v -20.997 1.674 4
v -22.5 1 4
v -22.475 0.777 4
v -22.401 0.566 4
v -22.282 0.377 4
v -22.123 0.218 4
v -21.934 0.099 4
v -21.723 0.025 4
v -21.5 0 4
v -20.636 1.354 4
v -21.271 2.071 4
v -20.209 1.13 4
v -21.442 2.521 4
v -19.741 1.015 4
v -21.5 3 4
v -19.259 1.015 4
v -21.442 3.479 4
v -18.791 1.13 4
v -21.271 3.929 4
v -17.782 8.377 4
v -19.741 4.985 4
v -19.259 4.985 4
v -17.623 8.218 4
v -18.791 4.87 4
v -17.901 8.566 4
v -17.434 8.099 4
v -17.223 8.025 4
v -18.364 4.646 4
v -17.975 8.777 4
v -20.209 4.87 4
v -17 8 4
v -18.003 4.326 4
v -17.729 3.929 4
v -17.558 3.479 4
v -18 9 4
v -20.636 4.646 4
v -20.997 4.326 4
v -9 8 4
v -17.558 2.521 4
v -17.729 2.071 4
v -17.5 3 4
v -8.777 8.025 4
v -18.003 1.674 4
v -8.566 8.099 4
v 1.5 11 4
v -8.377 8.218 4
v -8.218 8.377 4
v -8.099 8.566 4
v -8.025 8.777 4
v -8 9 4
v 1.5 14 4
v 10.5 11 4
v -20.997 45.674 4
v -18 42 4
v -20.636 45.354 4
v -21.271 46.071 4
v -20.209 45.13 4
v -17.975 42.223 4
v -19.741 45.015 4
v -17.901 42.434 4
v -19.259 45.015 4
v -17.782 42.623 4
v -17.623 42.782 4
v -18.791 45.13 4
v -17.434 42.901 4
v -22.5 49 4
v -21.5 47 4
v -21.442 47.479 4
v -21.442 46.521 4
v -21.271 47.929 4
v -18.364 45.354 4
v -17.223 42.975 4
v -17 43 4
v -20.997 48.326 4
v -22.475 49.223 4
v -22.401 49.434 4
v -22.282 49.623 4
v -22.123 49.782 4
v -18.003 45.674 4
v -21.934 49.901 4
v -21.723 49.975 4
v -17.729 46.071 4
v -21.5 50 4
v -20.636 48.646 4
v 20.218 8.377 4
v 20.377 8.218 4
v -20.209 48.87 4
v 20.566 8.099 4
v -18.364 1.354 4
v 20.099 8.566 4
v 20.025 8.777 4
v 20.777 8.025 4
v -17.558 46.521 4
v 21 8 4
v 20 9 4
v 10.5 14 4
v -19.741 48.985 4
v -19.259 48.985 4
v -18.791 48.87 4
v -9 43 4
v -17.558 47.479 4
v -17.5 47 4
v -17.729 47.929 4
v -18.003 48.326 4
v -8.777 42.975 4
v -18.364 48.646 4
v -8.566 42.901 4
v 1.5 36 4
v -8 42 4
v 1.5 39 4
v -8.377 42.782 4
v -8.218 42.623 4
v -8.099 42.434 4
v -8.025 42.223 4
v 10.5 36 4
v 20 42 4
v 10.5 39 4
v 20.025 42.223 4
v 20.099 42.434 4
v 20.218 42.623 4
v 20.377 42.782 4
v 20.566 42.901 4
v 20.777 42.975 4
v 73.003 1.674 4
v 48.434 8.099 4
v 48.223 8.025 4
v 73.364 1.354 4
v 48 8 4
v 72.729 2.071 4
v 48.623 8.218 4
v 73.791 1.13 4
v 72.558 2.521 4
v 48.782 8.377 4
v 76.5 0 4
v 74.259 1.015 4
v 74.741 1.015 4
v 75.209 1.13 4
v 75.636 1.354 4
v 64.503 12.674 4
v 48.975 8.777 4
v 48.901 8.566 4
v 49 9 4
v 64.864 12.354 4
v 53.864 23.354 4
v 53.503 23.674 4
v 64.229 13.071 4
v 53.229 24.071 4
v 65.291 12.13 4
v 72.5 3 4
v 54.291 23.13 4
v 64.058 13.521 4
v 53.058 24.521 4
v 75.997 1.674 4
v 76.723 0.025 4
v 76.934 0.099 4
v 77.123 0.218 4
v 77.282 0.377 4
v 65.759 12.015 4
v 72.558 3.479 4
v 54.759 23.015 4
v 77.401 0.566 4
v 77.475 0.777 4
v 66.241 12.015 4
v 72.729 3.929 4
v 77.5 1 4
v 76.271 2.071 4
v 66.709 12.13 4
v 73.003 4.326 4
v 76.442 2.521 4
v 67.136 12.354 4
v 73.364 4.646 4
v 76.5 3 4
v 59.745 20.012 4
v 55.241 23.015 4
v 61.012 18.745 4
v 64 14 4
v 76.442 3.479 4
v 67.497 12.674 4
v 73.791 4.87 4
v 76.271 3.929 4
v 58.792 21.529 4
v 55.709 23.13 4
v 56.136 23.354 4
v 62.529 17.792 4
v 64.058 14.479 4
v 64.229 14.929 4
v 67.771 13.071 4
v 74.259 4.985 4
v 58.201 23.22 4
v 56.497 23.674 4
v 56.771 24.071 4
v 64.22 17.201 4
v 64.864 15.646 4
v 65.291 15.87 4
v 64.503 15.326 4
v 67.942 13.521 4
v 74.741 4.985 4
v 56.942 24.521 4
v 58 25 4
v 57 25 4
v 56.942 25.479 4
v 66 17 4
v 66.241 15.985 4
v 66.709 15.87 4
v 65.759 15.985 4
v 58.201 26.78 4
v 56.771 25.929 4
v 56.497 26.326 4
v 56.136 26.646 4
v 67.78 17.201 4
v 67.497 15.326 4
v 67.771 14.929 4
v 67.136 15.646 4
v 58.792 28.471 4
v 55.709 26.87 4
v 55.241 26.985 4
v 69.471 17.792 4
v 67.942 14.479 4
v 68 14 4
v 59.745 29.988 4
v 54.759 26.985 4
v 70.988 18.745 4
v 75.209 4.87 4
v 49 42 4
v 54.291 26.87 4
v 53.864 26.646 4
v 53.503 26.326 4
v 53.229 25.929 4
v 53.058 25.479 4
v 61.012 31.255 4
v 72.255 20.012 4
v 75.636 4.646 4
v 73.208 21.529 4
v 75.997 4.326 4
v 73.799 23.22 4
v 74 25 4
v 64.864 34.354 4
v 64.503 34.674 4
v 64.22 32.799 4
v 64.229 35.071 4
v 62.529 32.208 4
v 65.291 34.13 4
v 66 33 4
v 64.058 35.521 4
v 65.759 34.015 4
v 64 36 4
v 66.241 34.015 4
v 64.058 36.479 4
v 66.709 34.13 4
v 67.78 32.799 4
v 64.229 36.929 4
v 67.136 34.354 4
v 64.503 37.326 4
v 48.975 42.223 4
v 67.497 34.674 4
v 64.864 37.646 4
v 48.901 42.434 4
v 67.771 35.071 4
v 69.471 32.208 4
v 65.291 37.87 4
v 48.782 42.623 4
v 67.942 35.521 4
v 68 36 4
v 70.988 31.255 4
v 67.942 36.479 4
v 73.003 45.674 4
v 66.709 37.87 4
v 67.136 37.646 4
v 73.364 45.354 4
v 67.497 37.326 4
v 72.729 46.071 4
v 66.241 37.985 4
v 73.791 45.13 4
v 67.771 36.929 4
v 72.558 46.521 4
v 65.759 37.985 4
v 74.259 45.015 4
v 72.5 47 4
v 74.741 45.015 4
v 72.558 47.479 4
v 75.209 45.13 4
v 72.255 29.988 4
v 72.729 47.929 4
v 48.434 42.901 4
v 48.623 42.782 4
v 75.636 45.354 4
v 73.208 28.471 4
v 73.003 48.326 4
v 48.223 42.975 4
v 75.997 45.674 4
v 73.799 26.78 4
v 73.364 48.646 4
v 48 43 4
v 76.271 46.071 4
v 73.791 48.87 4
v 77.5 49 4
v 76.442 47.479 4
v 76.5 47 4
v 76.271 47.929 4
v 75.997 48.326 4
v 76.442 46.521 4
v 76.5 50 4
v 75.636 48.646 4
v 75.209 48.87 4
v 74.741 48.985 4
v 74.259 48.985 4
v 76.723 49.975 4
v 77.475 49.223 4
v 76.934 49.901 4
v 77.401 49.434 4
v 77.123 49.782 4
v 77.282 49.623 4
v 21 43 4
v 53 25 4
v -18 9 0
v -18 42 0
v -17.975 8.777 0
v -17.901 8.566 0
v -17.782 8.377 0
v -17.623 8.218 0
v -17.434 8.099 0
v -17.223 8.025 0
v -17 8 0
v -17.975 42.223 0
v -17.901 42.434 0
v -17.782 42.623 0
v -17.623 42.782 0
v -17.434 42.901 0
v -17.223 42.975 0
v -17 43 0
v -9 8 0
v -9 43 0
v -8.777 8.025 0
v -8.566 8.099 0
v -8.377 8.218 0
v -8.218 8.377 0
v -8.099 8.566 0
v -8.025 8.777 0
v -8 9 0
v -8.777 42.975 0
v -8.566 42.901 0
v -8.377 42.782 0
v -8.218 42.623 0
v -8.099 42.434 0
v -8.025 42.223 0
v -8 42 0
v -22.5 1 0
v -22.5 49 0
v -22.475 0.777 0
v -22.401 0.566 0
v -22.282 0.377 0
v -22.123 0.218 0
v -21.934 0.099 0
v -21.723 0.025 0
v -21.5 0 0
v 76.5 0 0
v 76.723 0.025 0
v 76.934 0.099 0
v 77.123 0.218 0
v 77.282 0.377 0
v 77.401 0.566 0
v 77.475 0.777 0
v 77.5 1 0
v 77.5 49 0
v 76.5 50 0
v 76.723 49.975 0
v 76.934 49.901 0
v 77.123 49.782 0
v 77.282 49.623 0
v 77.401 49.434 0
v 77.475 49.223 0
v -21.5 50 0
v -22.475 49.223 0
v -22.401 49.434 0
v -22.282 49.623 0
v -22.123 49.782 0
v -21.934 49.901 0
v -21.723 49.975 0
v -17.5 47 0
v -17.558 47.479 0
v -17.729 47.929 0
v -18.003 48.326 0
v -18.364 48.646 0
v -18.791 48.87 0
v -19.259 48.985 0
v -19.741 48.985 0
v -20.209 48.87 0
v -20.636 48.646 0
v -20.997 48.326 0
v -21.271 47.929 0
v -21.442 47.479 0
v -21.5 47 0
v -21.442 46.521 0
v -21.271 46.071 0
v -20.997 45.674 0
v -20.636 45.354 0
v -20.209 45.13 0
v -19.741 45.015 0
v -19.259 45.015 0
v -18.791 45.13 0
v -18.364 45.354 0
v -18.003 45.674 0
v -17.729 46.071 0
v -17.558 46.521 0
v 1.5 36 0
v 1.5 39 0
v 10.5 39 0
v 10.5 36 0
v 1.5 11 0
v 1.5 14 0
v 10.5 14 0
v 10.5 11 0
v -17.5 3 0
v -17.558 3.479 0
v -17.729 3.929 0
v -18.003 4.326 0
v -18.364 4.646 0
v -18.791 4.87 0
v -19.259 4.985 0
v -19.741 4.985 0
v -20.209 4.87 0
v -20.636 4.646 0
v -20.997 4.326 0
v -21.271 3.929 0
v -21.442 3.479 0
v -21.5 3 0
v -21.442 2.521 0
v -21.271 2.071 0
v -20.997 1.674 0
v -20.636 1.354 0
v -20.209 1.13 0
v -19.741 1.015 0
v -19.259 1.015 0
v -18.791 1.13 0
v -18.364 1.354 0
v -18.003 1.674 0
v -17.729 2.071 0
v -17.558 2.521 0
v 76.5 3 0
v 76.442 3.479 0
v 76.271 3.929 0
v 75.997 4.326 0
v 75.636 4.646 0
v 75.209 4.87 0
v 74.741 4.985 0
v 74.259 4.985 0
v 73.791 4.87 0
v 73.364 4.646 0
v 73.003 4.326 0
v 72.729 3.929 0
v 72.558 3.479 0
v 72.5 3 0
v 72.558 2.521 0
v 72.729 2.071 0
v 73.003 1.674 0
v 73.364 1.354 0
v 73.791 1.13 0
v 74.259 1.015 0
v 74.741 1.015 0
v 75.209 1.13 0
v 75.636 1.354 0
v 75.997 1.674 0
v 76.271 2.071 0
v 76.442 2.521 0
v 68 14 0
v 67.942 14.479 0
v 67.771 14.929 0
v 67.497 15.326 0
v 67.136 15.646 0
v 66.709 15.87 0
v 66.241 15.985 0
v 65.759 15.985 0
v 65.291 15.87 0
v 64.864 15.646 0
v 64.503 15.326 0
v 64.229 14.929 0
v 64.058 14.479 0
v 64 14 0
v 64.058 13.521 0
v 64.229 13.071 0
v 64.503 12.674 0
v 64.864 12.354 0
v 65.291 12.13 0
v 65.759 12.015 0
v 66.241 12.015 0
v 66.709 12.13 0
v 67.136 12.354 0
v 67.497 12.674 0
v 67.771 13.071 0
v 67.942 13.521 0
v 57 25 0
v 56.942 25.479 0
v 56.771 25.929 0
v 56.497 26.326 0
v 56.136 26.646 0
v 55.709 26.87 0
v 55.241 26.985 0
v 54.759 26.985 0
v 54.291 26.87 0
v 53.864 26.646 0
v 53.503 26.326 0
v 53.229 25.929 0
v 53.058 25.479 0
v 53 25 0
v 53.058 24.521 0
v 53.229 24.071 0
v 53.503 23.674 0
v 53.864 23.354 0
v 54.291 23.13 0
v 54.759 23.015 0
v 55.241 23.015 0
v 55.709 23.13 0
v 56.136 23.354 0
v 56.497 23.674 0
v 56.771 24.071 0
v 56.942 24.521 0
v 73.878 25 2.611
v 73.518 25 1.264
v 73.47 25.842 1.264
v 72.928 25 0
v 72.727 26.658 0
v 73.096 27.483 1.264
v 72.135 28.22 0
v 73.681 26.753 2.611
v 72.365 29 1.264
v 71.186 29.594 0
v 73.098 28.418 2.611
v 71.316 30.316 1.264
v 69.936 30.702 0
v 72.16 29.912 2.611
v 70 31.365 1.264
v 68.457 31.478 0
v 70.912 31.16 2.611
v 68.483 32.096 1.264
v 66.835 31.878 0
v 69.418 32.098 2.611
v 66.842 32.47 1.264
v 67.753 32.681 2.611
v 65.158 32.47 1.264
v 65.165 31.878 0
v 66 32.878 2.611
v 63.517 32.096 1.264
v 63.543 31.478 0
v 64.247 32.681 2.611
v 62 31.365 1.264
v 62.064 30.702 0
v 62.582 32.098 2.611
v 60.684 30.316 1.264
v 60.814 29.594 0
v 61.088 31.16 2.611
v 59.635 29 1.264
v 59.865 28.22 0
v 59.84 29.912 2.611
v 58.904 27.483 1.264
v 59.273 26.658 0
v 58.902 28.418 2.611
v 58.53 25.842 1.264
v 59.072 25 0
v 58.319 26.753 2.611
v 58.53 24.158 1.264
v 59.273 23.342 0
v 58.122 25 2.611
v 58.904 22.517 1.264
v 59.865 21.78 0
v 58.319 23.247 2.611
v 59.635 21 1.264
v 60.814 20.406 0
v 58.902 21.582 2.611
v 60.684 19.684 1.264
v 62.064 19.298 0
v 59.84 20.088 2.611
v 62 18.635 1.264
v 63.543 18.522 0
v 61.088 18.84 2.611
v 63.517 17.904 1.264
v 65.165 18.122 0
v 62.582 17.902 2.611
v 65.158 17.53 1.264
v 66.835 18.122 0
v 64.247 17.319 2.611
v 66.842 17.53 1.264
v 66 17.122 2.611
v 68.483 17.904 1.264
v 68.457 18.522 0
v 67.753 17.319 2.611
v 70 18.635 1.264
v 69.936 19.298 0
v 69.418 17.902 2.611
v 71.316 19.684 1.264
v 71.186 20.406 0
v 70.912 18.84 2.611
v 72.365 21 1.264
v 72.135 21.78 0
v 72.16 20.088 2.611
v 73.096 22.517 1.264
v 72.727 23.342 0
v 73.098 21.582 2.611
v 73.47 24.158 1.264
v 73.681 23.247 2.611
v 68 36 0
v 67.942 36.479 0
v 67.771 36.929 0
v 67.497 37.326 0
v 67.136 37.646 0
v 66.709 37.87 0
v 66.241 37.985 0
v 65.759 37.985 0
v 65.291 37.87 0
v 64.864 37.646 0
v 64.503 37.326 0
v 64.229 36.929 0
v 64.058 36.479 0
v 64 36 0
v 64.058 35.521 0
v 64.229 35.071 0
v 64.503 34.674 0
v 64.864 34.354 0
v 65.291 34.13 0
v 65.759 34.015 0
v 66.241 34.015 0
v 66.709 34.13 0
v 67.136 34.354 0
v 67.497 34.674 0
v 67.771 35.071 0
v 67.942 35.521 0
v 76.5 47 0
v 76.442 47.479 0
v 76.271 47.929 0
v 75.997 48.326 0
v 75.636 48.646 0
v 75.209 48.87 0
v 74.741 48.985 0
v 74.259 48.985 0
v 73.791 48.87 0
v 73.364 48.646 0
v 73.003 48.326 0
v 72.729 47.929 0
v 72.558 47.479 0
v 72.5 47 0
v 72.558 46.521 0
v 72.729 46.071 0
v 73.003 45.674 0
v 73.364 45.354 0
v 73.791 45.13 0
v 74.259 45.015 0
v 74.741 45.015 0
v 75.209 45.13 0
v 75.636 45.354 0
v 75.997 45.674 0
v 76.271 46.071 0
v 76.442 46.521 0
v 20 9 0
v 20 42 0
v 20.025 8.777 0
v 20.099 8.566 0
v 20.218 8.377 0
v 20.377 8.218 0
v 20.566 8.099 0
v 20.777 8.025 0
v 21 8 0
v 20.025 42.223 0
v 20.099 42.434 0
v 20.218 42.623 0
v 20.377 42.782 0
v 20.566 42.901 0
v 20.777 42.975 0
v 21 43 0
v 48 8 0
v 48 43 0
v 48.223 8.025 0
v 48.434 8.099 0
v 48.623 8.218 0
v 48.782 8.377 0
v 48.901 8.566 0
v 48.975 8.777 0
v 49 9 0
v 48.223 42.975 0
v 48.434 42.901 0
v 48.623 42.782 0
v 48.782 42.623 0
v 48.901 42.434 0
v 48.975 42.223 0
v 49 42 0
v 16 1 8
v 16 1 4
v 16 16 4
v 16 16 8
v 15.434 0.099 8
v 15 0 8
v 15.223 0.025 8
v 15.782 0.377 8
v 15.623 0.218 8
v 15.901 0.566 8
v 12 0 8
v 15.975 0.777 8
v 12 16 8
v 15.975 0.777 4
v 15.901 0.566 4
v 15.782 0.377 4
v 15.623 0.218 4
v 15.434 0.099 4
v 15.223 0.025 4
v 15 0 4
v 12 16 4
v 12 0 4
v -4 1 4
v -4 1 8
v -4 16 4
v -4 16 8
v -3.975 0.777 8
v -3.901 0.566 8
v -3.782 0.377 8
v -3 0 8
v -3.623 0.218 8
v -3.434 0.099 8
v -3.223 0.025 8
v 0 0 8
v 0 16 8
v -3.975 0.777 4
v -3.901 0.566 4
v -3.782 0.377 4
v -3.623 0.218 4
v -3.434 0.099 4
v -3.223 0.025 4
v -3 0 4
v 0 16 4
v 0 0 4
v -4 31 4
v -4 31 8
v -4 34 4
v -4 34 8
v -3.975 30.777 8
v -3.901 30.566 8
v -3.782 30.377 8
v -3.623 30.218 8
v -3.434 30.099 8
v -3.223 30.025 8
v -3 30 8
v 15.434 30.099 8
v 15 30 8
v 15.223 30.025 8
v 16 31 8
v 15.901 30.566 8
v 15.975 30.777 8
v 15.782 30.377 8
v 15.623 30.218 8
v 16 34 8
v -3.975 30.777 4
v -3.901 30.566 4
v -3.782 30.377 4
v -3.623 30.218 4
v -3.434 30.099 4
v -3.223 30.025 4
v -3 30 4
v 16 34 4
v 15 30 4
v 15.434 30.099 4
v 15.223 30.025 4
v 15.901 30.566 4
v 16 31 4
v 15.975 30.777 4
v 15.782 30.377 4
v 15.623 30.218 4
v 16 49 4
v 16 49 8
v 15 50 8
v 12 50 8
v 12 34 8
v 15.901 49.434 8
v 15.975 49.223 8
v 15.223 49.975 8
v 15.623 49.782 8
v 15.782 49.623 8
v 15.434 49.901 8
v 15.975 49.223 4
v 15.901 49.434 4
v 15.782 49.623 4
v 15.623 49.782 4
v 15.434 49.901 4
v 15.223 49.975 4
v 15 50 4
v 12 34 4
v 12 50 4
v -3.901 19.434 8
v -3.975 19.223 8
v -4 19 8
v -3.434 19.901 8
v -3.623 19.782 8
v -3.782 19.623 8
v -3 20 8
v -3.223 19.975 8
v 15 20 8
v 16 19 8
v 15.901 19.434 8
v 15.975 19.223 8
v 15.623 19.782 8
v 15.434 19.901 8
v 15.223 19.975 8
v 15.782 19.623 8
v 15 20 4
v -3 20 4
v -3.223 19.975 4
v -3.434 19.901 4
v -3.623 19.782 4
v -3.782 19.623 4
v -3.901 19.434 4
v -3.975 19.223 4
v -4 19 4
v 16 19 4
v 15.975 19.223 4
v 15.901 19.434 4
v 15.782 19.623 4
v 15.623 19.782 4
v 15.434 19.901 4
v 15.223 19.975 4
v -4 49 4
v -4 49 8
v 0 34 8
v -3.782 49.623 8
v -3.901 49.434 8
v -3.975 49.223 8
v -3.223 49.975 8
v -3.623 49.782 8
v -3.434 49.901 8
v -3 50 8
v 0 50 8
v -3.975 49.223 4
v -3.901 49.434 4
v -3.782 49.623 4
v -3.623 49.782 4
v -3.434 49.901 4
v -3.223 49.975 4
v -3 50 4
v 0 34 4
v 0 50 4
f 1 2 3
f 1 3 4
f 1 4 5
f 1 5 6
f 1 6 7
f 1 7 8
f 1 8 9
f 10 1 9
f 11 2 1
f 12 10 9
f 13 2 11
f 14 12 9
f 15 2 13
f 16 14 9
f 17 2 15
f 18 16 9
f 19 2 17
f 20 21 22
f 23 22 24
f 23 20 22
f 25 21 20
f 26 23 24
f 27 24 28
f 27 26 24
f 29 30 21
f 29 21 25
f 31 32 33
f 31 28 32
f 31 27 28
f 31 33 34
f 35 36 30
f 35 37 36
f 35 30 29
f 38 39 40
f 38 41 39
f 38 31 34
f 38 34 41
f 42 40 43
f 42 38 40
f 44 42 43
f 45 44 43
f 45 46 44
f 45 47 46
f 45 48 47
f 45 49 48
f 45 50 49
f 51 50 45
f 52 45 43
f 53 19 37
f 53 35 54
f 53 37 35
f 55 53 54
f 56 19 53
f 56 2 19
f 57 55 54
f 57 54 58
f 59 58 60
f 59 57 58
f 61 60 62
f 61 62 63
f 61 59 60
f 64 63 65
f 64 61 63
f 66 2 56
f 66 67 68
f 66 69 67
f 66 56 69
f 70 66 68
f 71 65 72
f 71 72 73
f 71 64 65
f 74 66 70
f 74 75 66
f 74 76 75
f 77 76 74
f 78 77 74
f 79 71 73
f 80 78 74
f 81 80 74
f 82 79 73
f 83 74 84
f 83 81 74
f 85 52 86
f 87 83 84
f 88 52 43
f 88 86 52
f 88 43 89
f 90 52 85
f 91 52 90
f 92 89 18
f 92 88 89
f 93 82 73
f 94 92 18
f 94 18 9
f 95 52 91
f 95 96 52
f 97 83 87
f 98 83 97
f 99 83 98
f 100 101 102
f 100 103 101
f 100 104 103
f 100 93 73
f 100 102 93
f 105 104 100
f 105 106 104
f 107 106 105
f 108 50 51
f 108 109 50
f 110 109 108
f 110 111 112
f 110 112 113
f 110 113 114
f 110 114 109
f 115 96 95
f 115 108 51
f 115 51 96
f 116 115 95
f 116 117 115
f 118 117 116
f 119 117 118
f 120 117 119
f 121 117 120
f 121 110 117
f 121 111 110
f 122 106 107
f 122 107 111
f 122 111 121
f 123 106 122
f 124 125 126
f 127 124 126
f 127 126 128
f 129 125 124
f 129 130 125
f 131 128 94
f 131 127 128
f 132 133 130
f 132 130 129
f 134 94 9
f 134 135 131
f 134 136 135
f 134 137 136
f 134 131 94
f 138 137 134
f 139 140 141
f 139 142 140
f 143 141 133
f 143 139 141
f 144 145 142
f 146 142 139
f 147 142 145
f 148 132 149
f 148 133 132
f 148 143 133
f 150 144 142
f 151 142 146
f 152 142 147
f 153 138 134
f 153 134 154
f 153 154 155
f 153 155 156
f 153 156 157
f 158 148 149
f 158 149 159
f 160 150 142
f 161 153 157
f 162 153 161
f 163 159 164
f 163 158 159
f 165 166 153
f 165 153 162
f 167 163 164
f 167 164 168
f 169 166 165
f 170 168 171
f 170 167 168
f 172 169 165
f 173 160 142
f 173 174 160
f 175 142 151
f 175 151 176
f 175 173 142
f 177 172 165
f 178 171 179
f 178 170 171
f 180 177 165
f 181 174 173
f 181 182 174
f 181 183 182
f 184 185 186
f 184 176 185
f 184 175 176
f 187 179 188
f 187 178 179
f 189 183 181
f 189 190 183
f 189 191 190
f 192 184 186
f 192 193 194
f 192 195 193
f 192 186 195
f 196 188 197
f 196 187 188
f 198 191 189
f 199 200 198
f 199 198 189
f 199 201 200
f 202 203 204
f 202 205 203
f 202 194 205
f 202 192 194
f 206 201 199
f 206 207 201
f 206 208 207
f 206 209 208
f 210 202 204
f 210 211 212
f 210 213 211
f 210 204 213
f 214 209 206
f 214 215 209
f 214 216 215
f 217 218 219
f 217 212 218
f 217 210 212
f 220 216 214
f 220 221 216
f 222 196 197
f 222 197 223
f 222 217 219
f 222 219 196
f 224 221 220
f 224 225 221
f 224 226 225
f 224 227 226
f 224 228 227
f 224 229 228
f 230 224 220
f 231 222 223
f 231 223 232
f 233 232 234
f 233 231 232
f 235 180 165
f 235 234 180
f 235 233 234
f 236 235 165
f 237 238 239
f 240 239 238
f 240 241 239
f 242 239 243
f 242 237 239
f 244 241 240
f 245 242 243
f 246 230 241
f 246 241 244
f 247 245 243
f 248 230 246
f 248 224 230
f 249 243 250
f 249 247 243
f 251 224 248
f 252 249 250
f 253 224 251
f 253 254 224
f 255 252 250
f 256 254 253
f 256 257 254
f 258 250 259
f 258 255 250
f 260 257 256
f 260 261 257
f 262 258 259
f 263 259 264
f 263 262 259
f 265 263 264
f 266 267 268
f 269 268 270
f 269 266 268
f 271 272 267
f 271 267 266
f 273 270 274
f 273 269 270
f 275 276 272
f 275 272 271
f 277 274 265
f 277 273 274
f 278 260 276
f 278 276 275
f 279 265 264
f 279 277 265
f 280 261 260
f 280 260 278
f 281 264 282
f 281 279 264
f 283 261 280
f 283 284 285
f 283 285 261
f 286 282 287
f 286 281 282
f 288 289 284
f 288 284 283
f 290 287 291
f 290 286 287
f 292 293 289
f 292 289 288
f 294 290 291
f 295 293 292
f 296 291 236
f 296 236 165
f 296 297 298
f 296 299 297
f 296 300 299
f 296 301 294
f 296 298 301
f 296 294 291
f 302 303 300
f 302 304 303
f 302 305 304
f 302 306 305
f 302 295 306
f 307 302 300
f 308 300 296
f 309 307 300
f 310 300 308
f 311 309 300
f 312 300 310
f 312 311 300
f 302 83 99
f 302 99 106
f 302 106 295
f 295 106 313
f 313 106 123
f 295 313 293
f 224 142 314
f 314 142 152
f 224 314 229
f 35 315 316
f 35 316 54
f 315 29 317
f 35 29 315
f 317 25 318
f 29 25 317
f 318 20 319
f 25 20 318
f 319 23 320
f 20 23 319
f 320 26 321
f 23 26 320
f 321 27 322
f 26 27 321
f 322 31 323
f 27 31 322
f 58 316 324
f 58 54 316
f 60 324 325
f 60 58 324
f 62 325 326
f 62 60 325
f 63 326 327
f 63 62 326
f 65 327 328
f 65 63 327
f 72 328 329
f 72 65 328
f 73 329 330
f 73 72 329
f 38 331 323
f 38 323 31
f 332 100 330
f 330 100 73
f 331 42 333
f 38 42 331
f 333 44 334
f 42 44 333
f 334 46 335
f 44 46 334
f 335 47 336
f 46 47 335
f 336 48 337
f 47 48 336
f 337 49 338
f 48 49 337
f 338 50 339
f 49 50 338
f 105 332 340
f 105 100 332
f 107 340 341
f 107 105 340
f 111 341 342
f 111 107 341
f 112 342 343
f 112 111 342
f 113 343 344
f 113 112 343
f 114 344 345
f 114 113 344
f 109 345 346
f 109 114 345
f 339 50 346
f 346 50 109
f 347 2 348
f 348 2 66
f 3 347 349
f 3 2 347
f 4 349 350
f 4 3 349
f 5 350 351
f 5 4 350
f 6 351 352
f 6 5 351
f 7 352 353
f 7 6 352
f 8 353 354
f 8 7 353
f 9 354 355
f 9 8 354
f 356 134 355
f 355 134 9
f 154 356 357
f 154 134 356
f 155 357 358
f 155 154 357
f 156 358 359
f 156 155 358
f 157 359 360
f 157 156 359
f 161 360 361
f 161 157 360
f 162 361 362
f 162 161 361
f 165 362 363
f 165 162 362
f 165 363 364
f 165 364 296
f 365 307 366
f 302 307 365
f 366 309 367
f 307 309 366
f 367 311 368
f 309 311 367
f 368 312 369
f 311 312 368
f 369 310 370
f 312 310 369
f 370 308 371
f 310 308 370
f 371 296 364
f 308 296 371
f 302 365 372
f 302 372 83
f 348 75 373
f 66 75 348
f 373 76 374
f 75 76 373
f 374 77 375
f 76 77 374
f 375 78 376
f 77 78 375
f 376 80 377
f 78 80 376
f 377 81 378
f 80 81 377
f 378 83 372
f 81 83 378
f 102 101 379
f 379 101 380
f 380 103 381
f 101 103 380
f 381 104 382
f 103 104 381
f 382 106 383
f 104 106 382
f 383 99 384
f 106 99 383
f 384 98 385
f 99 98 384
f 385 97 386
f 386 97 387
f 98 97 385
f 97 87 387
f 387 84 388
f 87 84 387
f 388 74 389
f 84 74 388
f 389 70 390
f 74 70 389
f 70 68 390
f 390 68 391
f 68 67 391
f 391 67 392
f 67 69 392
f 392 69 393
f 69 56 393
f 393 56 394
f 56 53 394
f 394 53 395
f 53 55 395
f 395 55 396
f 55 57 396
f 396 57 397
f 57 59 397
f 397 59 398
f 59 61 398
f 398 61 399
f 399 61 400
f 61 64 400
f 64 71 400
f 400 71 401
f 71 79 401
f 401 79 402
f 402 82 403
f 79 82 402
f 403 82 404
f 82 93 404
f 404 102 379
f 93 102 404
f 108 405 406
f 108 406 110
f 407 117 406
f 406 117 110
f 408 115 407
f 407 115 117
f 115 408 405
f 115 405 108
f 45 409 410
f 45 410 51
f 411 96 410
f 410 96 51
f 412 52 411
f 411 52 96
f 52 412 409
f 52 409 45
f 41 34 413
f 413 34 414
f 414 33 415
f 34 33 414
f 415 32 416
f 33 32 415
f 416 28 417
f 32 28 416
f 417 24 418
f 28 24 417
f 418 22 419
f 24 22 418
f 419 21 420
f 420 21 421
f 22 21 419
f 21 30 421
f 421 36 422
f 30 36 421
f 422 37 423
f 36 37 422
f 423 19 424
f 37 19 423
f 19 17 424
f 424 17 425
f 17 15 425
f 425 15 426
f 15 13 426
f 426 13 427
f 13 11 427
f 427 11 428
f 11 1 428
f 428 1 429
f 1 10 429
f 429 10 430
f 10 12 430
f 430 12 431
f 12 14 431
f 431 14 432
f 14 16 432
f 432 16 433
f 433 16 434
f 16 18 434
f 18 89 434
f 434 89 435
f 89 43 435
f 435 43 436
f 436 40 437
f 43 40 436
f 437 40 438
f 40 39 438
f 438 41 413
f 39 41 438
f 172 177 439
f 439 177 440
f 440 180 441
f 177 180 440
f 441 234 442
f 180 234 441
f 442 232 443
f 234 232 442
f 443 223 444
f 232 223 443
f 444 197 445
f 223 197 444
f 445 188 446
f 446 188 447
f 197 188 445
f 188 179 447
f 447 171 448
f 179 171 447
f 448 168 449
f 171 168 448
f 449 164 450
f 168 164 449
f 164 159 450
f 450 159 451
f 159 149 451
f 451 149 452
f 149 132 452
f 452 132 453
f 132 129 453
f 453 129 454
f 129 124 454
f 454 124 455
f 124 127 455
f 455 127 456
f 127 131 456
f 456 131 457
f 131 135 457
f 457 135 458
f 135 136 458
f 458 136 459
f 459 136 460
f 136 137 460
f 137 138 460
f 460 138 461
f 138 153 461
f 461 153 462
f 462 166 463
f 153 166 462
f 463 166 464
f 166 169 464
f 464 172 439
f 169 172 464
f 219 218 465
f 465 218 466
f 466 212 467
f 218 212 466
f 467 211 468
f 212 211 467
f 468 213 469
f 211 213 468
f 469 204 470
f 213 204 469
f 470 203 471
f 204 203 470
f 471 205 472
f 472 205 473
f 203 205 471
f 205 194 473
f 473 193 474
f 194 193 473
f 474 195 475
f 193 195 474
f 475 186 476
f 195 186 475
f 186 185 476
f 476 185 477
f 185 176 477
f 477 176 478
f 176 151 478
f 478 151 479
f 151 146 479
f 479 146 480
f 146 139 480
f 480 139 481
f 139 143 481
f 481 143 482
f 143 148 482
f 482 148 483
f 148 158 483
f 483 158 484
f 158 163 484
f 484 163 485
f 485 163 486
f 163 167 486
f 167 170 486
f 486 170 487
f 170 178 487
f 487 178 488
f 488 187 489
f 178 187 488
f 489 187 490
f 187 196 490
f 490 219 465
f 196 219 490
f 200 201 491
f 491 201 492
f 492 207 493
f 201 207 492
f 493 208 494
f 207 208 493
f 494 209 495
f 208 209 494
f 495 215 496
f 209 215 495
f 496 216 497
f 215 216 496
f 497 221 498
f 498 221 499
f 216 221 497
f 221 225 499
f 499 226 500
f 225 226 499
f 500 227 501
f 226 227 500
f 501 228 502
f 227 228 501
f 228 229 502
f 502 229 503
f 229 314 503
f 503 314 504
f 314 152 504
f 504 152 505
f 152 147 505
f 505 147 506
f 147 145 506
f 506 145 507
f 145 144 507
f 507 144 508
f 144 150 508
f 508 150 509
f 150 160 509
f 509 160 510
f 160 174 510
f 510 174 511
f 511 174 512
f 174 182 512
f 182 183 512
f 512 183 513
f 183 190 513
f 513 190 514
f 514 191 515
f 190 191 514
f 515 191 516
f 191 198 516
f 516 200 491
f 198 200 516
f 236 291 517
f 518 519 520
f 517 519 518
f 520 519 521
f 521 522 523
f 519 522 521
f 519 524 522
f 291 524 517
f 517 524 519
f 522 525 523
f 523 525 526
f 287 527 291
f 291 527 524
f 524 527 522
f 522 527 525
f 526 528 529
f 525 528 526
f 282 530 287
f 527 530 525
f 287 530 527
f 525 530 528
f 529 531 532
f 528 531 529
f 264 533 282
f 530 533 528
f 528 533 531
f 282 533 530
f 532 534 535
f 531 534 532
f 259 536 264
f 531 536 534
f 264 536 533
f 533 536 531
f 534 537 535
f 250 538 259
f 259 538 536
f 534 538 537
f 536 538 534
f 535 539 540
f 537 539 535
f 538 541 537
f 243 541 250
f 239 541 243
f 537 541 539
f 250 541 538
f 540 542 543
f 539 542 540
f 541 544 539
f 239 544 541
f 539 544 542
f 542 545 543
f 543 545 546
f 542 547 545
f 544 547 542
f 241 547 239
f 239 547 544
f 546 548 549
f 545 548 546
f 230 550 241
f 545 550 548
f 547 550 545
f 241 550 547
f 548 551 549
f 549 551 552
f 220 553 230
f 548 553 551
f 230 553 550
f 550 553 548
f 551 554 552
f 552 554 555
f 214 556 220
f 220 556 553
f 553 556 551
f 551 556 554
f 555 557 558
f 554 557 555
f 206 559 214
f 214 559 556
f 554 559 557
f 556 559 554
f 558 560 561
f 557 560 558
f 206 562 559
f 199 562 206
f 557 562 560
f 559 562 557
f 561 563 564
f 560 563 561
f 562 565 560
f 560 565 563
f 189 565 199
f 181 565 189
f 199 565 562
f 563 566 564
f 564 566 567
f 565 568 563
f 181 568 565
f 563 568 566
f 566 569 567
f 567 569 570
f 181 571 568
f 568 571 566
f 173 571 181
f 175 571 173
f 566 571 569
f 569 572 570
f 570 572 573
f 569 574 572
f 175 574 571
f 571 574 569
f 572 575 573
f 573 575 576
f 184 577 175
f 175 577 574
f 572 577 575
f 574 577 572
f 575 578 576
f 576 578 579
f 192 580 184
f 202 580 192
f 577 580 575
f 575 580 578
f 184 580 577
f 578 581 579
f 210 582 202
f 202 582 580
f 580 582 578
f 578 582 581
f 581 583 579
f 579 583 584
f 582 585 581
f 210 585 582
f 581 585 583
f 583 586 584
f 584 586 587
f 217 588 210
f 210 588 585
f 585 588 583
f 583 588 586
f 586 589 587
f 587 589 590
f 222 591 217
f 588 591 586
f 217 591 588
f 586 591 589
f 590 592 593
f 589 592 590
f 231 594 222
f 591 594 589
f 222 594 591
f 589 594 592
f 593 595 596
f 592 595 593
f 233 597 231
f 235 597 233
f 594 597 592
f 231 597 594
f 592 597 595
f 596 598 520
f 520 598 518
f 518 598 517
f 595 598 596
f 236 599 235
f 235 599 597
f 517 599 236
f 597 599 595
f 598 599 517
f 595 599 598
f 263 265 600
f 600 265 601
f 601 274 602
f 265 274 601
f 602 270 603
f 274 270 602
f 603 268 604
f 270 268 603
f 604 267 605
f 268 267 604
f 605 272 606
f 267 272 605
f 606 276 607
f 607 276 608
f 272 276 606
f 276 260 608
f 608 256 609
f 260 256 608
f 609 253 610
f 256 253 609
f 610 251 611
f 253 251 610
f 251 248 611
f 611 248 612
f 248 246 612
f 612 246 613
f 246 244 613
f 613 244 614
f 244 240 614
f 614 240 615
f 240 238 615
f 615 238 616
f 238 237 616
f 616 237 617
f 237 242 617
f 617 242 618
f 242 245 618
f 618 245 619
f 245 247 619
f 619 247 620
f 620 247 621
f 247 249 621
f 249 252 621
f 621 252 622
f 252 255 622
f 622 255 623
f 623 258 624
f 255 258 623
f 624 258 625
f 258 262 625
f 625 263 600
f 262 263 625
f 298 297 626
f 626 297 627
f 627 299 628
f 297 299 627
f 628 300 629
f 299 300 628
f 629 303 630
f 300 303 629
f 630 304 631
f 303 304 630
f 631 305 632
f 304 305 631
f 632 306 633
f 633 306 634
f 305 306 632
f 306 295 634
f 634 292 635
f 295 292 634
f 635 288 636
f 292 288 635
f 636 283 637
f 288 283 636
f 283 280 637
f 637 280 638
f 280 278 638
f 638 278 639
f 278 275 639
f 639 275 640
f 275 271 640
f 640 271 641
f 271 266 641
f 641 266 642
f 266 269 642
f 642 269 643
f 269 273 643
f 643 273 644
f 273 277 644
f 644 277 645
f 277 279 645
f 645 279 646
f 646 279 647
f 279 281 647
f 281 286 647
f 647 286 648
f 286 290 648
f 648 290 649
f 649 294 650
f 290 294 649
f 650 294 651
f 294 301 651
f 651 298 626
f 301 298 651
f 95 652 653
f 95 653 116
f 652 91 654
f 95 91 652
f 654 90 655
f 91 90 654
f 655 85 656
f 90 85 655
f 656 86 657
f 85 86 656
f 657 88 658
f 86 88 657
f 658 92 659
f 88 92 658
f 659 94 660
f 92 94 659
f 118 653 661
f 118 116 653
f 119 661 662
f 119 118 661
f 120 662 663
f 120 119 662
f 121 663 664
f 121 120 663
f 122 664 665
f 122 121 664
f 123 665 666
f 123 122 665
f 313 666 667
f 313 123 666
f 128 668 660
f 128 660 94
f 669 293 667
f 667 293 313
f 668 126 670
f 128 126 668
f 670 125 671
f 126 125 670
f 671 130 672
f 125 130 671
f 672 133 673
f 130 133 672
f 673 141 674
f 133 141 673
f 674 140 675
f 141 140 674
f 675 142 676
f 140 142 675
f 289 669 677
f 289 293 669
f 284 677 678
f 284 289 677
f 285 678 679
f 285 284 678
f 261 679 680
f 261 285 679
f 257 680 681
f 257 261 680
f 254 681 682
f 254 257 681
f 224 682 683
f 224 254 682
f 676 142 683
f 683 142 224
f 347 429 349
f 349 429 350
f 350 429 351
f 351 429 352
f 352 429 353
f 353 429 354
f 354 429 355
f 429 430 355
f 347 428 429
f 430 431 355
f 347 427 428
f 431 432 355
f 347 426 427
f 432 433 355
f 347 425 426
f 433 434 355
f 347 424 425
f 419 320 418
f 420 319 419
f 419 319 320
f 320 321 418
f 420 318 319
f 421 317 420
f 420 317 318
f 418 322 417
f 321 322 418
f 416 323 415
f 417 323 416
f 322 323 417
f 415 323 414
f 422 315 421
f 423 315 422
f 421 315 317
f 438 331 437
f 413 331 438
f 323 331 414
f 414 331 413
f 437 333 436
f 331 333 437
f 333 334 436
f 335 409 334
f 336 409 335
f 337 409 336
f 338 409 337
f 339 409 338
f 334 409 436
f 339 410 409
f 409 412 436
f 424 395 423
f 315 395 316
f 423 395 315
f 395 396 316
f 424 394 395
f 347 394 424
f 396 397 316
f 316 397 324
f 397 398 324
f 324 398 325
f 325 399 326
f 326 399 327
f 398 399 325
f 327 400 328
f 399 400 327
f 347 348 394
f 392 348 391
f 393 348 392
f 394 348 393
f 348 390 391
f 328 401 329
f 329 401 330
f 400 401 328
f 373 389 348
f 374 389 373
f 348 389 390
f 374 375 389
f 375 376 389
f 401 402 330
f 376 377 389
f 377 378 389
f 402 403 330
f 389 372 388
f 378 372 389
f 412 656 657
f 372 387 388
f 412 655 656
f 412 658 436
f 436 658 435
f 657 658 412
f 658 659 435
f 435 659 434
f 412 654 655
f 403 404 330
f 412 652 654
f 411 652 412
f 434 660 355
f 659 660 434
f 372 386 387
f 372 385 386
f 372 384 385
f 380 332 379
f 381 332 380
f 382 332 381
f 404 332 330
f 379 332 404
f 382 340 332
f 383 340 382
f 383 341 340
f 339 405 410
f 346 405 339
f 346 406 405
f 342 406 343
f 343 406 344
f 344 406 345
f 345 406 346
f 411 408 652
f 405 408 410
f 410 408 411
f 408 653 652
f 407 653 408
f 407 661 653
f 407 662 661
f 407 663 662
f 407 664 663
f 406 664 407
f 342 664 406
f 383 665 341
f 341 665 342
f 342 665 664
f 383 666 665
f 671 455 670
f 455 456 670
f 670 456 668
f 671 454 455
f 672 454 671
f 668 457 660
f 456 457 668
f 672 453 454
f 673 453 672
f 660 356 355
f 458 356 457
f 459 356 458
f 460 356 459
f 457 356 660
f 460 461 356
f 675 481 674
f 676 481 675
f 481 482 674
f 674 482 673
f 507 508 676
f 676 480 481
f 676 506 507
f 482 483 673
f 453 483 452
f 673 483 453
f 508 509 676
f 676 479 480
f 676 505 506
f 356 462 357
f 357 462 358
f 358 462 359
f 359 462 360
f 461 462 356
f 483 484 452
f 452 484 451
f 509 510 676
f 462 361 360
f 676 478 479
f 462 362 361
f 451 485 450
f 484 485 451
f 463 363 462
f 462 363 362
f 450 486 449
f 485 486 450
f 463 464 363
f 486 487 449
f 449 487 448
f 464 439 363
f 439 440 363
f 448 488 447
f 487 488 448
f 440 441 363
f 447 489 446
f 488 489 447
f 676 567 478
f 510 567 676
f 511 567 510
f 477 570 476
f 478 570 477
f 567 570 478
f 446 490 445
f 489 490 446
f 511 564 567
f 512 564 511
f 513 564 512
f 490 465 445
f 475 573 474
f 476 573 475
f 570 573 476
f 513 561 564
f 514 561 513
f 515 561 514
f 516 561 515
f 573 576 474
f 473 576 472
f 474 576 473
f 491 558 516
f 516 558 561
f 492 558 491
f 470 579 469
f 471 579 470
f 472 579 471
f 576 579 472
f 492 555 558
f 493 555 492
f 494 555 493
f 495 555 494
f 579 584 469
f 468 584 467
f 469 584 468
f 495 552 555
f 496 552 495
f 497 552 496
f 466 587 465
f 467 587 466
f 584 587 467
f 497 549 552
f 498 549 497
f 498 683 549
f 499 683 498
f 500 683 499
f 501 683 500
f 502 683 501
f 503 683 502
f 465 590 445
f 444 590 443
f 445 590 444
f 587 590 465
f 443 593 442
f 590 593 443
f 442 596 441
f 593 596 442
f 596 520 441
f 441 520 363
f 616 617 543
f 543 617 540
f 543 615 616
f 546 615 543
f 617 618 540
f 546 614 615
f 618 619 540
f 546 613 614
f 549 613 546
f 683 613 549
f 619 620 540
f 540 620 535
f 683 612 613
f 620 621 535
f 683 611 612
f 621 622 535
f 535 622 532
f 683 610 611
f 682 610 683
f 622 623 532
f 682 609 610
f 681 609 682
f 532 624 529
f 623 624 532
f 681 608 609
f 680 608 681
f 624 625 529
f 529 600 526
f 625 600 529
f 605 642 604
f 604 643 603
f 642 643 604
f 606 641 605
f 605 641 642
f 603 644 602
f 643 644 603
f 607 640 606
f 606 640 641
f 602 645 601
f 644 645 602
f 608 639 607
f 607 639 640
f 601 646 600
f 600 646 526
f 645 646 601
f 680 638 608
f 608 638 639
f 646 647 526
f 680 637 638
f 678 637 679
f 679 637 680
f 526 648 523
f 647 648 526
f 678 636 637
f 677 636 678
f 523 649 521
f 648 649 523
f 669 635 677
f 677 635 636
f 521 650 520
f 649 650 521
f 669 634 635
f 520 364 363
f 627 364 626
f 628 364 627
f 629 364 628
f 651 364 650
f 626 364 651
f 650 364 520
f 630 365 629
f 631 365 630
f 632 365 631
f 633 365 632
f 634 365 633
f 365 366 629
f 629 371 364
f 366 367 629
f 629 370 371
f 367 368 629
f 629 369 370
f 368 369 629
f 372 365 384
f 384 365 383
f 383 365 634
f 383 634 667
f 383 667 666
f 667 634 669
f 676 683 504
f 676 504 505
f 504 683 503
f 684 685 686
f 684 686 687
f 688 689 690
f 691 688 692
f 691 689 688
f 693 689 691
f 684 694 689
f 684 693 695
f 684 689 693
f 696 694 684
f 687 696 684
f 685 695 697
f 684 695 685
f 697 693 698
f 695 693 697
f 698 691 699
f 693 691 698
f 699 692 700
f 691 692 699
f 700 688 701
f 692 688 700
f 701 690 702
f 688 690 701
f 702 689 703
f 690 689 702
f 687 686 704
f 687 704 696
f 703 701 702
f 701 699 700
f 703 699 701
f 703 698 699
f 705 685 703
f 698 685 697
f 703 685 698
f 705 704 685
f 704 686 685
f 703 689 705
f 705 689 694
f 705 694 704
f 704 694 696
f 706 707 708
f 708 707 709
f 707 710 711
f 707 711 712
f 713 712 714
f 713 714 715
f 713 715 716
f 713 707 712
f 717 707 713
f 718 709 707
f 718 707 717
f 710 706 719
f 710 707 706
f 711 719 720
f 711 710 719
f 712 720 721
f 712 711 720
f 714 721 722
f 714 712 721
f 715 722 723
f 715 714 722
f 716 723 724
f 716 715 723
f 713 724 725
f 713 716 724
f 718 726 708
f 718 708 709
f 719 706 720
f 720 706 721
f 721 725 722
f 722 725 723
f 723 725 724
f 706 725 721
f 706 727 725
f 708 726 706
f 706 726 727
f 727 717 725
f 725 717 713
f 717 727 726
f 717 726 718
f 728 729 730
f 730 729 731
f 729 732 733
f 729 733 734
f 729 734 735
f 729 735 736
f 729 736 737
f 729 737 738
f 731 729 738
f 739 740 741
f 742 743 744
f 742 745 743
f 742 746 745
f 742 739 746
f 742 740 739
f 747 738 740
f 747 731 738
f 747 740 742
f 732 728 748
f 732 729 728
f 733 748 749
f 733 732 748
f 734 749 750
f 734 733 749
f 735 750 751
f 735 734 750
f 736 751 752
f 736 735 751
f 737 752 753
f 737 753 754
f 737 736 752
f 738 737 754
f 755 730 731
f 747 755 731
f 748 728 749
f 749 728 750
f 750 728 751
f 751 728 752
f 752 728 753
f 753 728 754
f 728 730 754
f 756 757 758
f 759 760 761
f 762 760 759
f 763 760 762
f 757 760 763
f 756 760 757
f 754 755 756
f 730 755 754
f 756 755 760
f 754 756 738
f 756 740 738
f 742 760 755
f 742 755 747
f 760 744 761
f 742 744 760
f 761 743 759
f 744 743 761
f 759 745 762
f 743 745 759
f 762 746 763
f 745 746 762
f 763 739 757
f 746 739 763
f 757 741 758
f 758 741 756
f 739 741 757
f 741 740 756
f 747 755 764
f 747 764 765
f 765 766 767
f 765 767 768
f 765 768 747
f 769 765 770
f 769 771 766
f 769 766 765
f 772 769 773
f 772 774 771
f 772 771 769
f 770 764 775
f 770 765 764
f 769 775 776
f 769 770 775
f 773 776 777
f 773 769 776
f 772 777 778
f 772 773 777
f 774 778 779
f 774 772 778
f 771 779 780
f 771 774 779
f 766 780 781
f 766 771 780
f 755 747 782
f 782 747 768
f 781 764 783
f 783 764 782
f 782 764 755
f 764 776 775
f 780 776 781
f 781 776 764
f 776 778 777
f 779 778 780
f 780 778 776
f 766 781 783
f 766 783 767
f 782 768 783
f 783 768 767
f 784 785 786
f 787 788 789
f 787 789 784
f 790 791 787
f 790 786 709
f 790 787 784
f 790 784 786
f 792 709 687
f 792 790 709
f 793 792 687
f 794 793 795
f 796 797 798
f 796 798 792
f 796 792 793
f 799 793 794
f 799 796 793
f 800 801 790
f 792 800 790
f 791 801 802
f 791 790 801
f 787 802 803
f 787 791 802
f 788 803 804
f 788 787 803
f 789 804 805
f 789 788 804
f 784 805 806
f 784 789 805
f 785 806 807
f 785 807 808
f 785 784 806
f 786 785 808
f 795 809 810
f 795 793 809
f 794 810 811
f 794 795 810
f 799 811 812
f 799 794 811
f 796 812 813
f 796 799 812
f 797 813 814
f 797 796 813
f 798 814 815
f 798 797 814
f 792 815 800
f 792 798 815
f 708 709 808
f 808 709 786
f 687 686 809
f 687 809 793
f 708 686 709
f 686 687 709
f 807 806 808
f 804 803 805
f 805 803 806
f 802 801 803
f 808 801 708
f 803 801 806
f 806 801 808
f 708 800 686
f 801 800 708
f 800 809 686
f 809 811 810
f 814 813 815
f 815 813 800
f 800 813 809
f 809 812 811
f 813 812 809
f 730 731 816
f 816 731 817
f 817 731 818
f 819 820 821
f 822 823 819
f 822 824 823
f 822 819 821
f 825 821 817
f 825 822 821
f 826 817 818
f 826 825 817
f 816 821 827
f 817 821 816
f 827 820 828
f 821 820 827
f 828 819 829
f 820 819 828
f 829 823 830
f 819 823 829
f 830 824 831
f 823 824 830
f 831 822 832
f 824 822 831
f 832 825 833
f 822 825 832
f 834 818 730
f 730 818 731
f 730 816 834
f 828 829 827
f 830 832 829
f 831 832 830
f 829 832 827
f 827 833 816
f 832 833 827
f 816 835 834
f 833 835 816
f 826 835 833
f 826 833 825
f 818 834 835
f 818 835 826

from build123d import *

# Parameters (mm, degrees)
CYLINDER006_R     = 2
CYLINDER006_DEPTH = 4
BOX010_W          = 29
BOX010_H          = 35
BOX010_DEPTH      = 4
CYLINDER004_R     = 2
CYLINDER004_DEPTH = 4
CYLINDER005_R     = 2
CYLINDER005_DEPTH = 4
BOX009_W          = 10
BOX009_H          = 35
BOX009_DEPTH      = 4
BOX008_W          = 9
BOX008_H          = 3
BOX008_DEPTH      = 4
BOX007_W          = 9
BOX007_H          = 3
BOX007_DEPTH      = 4
CYLINDER001_R     = 2
CYLINDER001_DEPTH = 4
CYLINDER002_R     = 2
CYLINDER002_DEPTH = 4
CYLINDER003_R     = 2
CYLINDER003_DEPTH = 4
CYLINDER_R        = 2
CYLINDER_DEPTH    = 4
BOX_W             = 100
BOX_H             = 50
BOX_DEPTH         = 4
FILLET_R          = 1
FILLET001_R       = 1
BOX003_W          = 4
BOX003_H          = 16
BOX003_DEPTH      = 4
FILLET002_R       = 1
BOX002_W          = 4
BOX002_H          = 16
BOX002_DEPTH      = 4
FILLET004_R       = 1
BOX006_W          = 20
BOX006_H          = 4
BOX006_DEPTH      = 4
FILLET005_R       = 1
BOX005_W          = 4
BOX005_H          = 16
BOX005_DEPTH      = 4
FILLET006_R       = 1
BOX001_W          = 20
BOX001_H          = 4
BOX001_DEPTH      = 4
FILLET003_R       = 1
FILLET007_R       = 1
BOX004_W          = 4
BOX004_H          = 16
BOX004_DEPTH      = 4
FILLET008_R       = 1


with BuildPart() as sphere:
    # Sphere → Sphere (revolve)
    with BuildSketch(Plane(origin=(66, 25, 4), x_dir=(1, 0, 0), z_dir=(0, -1, 0))):
        with BuildLine():
            ThreePointArc((0, -8), (8, 0), (0, 8))
            Line((0, 8), (0, -8))
        make_face()
    revolve(axis=Axis((66, 25, 4), (0, 0, 1)))


with BuildPart() as cylinder002:
    # Cylinder006 → Cylinder006 (new body)
    with BuildSketch(Plane(origin=(66, 36, 0), x_dir=(1, 0, 0), z_dir=(0, 0, 1))):
        Circle(CYLINDER006_R)
    extrude(amount=CYLINDER006_DEPTH)


with BuildPart() as cube010:
    # Box010 → Box010 (new body)
    with BuildSketch(Plane(origin=(20, 8, 0), x_dir=(1, 0, 0), z_dir=(0, 0, 1))):
        with Locations((14.5, 17.5)):
            Rectangle(BOX010_W, BOX010_H)
    extrude(amount=BOX010_DEPTH)


with BuildPart() as cylinder:
    # Cylinder004 → Cylinder004 (new body)
    with BuildSketch(Plane(origin=(55, 25, 0), x_dir=(1, 0, 0), z_dir=(0, 0, 1))):
        Circle(CYLINDER004_R)
    extrude(amount=CYLINDER004_DEPTH)


with BuildPart() as cylinder001:
    # Cylinder005 → Cylinder005 (new body)
    with BuildSketch(Plane(origin=(66, 14, 0), x_dir=(1, 0, 0), z_dir=(0, 0, 1))):
        Circle(CYLINDER005_R)
    extrude(amount=CYLINDER005_DEPTH)


with BuildPart() as cube009:
    # Box009 → Box009 (new body)
    with BuildSketch(Plane(origin=(-18, 8, 0), x_dir=(1, 0, 0), z_dir=(0, 0, 1))):
        with Locations((5, 17.5)):
            Rectangle(BOX009_W, BOX009_H)
    extrude(amount=BOX009_DEPTH)


with BuildPart() as cube008:
    # Box008 → Box008 (new body)
    with BuildSketch(Plane(origin=(1.5, 36, 0), x_dir=(1, 0, 0), z_dir=(0, 0, 1))):
        with Locations((4.5, 1.5)):
            Rectangle(BOX008_W, BOX008_H)
    extrude(amount=BOX008_DEPTH)


with BuildPart() as cube007:
    # Box007 → Box007 (new body)
    with BuildSketch(Plane(origin=(1.5, 11, 0), x_dir=(1, 0, 0), z_dir=(0, 0, 1))):
        with Locations((4.5, 1.5)):
            Rectangle(BOX007_W, BOX007_H)
    extrude(amount=BOX007_DEPTH)


with BuildPart() as cylinder001_body:
    # Cylinder001 → Cylinder001 (new body)
    with BuildSketch(Plane(origin=(3, 47, 0), x_dir=(1, 0, 0), z_dir=(0, 0, 1))):
        Circle(CYLINDER001_R)
    extrude(amount=CYLINDER001_DEPTH)


with BuildPart() as cylinder002_body:
    # Cylinder002 → Cylinder002 (new body)
    with BuildSketch(Plane(origin=(97, 3, 0), x_dir=(1, 0, 0), z_dir=(0, 0, 1))):
        Circle(CYLINDER002_R)
    extrude(amount=CYLINDER002_DEPTH)


with BuildPart() as cylinder003:
    # Cylinder003 → Cylinder003 (new body)
    with BuildSketch(Plane(origin=(97, 47, 0), x_dir=(1, 0, 0), z_dir=(0, 0, 1))):
        Circle(CYLINDER003_R)
    extrude(amount=CYLINDER003_DEPTH)


with BuildPart() as cylinder_body:
    # Cylinder → Cylinder (new body)
    with BuildSketch(Plane(origin=(3, 3, 0), x_dir=(1, 0, 0), z_dir=(0, 0, 1))):
        Circle(CYLINDER_R)
    extrude(amount=CYLINDER_DEPTH)


with BuildPart() as fillet001:
    # Box → Box (new body)
    with BuildSketch(Plane.XY):
        with Locations((50, 25)):
            Rectangle(BOX_W, BOX_H)
    extrude(amount=BOX_DEPTH)

    # Cut: cut Cylinder body
    add(cylinder_body.part, mode=Mode.SUBTRACT)

    # Cut001: cut Cylinder003
    add(cylinder003.part, mode=Mode.SUBTRACT)

    # Cut002: cut Cylinder002 body
    add(cylinder002_body.part, mode=Mode.SUBTRACT)

    # Cut003: cut Cylinder001 body
    add(cylinder001_body.part, mode=Mode.SUBTRACT)


with BuildPart() as fillet001_1:
    # Cut003 placement: moved
    add(fillet001.part.moved(Location((-22.5, 0, 0))))

    # Cut004: cut Cube007
    add(cube007.part, mode=Mode.SUBTRACT)

    # Cut005: cut Cube008
    add(cube008.part, mode=Mode.SUBTRACT)

    # Cut006: cut Cube009
    add(cube009.part, mode=Mode.SUBTRACT)

    # Cut007: cut Cylinder001
    add(cylinder001.part, mode=Mode.SUBTRACT)

    # Cut008: cut Cylinder
    add(cylinder.part, mode=Mode.SUBTRACT)

    # Cut009: cut Cube010
    add(cube010.part, mode=Mode.SUBTRACT)

    # Cut010: cut Cylinder002
    add(cylinder002.part, mode=Mode.SUBTRACT)

    # Cut011: cut Sphere
    add(sphere.part, mode=Mode.SUBTRACT)

    # Fillet
    fillet_edges = [fillet001_1.edges().sort_by_distance(p)[0] for p in [
        (-22.5, 0, 2),
        (-22.5, 50, 2),
        (77.5, 0, 2),
        (77.5, 50, 2),
    ]]
    fillet(fillet_edges, radius=FILLET_R)

    # Fillet001
    fillet001_edges = [fillet001_1.edges().sort_by_distance(p)[0] for p in [
        (-18, 8, 2),
        (-18, 43, 2),
        (-8, 43, 2),
        (-8, 8, 2),
        (20, 8, 2),
        (20, 43, 2),
        (49, 43, 2),
        (49, 8, 2),
    ]]
    fillet(fillet001_edges, radius=FILLET001_R)


with BuildPart() as fillet002:
    # Box003 → Box003 (new body)
    with BuildSketch(Plane(origin=(12, 0, 4), x_dir=(1, 0, 0), z_dir=(0, 0, 1))):
        with Locations((2, 8)):
            Rectangle(BOX003_W, BOX003_H)
    extrude(amount=BOX003_DEPTH)

    # Fillet002
    fillet002_edges = [fillet002.edges().sort_by_distance(p)[0] for p in [
        (16, 0, 6),
    ]]
    fillet(fillet002_edges, radius=FILLET002_R)


with BuildPart() as fillet004:
    # Box002 → Box002 (new body)
    with BuildSketch(Plane(origin=(-4, 0, 4), x_dir=(1, 0, 0), z_dir=(0, 0, 1))):
        with Locations((2, 8)):
            Rectangle(BOX002_W, BOX002_H)
    extrude(amount=BOX002_DEPTH)

    # Fillet004
    fillet004_edges = [fillet004.edges().sort_by_distance(p)[0] for p in [
        (-4, 0, 6),
    ]]
    fillet(fillet004_edges, radius=FILLET004_R)


with BuildPart() as fillet005:
    # Box006 → Box006 (new body)
    with BuildSketch(Plane(origin=(-4, 30, 4), x_dir=(1, 0, 0), z_dir=(0, 0, 1))):
        with Locations((10, 2)):
            Rectangle(BOX006_W, BOX006_H)
    extrude(amount=BOX006_DEPTH)

    # Fillet005
    fillet005_edges = [fillet005.edges().sort_by_distance(p)[0] for p in [
        (-4, 30, 6),
        (16, 30, 6),
    ]]
    fillet(fillet005_edges, radius=FILLET005_R)


with BuildPart() as fillet006:
    # Box005 → Box005 (new body)
    with BuildSketch(Plane(origin=(12, 34, 4), x_dir=(1, 0, 0), z_dir=(0, 0, 1))):
        with Locations((2, 8)):
            Rectangle(BOX005_W, BOX005_H)
    extrude(amount=BOX005_DEPTH)

    # Fillet006
    fillet006_edges = [fillet006.edges().sort_by_distance(p)[0] for p in [
        (16, 50, 6),
    ]]
    fillet(fillet006_edges, radius=FILLET006_R)


with BuildPart() as fillet007:
    # Box001 → Box001 (new body)
    with BuildSketch(Plane(origin=(-4, 16, 4), x_dir=(1, 0, 0), z_dir=(0, 0, 1))):
        with Locations((10, 2)):
            Rectangle(BOX001_W, BOX001_H)
    extrude(amount=BOX001_DEPTH)

    # Fillet003
    fillet003_edges = [fillet007.edges().sort_by_distance(p)[0] for p in [
        (16, 20, 6),
    ]]
    fillet(fillet003_edges, radius=FILLET003_R)

    # Fillet007
    fillet007_edges = [fillet007.edges().sort_by_distance(p)[0] for p in [
        (-4, 20, 6),
    ]]
    fillet(fillet007_edges, radius=FILLET007_R)


with BuildPart() as fillet008:
    # Box004 → Box004 (new body)
    with BuildSketch(Plane(origin=(-4, 34, 4), x_dir=(1, 0, 0), z_dir=(0, 0, 1))):
        with Locations((2, 8)):
            Rectangle(BOX004_W, BOX004_H)
    extrude(amount=BOX004_DEPTH)

    # Fillet008
    fillet008_edges = [fillet008.edges().sort_by_distance(p)[0] for p in [
        (-4, 50, 6),
    ]]
    fillet(fillet008_edges, radius=FILLET008_R)


solid = Compound([fillet001_1.part, fillet002.part, fillet004.part, fillet005.part, fillet006.part, fillet007.part, fillet008.part])
